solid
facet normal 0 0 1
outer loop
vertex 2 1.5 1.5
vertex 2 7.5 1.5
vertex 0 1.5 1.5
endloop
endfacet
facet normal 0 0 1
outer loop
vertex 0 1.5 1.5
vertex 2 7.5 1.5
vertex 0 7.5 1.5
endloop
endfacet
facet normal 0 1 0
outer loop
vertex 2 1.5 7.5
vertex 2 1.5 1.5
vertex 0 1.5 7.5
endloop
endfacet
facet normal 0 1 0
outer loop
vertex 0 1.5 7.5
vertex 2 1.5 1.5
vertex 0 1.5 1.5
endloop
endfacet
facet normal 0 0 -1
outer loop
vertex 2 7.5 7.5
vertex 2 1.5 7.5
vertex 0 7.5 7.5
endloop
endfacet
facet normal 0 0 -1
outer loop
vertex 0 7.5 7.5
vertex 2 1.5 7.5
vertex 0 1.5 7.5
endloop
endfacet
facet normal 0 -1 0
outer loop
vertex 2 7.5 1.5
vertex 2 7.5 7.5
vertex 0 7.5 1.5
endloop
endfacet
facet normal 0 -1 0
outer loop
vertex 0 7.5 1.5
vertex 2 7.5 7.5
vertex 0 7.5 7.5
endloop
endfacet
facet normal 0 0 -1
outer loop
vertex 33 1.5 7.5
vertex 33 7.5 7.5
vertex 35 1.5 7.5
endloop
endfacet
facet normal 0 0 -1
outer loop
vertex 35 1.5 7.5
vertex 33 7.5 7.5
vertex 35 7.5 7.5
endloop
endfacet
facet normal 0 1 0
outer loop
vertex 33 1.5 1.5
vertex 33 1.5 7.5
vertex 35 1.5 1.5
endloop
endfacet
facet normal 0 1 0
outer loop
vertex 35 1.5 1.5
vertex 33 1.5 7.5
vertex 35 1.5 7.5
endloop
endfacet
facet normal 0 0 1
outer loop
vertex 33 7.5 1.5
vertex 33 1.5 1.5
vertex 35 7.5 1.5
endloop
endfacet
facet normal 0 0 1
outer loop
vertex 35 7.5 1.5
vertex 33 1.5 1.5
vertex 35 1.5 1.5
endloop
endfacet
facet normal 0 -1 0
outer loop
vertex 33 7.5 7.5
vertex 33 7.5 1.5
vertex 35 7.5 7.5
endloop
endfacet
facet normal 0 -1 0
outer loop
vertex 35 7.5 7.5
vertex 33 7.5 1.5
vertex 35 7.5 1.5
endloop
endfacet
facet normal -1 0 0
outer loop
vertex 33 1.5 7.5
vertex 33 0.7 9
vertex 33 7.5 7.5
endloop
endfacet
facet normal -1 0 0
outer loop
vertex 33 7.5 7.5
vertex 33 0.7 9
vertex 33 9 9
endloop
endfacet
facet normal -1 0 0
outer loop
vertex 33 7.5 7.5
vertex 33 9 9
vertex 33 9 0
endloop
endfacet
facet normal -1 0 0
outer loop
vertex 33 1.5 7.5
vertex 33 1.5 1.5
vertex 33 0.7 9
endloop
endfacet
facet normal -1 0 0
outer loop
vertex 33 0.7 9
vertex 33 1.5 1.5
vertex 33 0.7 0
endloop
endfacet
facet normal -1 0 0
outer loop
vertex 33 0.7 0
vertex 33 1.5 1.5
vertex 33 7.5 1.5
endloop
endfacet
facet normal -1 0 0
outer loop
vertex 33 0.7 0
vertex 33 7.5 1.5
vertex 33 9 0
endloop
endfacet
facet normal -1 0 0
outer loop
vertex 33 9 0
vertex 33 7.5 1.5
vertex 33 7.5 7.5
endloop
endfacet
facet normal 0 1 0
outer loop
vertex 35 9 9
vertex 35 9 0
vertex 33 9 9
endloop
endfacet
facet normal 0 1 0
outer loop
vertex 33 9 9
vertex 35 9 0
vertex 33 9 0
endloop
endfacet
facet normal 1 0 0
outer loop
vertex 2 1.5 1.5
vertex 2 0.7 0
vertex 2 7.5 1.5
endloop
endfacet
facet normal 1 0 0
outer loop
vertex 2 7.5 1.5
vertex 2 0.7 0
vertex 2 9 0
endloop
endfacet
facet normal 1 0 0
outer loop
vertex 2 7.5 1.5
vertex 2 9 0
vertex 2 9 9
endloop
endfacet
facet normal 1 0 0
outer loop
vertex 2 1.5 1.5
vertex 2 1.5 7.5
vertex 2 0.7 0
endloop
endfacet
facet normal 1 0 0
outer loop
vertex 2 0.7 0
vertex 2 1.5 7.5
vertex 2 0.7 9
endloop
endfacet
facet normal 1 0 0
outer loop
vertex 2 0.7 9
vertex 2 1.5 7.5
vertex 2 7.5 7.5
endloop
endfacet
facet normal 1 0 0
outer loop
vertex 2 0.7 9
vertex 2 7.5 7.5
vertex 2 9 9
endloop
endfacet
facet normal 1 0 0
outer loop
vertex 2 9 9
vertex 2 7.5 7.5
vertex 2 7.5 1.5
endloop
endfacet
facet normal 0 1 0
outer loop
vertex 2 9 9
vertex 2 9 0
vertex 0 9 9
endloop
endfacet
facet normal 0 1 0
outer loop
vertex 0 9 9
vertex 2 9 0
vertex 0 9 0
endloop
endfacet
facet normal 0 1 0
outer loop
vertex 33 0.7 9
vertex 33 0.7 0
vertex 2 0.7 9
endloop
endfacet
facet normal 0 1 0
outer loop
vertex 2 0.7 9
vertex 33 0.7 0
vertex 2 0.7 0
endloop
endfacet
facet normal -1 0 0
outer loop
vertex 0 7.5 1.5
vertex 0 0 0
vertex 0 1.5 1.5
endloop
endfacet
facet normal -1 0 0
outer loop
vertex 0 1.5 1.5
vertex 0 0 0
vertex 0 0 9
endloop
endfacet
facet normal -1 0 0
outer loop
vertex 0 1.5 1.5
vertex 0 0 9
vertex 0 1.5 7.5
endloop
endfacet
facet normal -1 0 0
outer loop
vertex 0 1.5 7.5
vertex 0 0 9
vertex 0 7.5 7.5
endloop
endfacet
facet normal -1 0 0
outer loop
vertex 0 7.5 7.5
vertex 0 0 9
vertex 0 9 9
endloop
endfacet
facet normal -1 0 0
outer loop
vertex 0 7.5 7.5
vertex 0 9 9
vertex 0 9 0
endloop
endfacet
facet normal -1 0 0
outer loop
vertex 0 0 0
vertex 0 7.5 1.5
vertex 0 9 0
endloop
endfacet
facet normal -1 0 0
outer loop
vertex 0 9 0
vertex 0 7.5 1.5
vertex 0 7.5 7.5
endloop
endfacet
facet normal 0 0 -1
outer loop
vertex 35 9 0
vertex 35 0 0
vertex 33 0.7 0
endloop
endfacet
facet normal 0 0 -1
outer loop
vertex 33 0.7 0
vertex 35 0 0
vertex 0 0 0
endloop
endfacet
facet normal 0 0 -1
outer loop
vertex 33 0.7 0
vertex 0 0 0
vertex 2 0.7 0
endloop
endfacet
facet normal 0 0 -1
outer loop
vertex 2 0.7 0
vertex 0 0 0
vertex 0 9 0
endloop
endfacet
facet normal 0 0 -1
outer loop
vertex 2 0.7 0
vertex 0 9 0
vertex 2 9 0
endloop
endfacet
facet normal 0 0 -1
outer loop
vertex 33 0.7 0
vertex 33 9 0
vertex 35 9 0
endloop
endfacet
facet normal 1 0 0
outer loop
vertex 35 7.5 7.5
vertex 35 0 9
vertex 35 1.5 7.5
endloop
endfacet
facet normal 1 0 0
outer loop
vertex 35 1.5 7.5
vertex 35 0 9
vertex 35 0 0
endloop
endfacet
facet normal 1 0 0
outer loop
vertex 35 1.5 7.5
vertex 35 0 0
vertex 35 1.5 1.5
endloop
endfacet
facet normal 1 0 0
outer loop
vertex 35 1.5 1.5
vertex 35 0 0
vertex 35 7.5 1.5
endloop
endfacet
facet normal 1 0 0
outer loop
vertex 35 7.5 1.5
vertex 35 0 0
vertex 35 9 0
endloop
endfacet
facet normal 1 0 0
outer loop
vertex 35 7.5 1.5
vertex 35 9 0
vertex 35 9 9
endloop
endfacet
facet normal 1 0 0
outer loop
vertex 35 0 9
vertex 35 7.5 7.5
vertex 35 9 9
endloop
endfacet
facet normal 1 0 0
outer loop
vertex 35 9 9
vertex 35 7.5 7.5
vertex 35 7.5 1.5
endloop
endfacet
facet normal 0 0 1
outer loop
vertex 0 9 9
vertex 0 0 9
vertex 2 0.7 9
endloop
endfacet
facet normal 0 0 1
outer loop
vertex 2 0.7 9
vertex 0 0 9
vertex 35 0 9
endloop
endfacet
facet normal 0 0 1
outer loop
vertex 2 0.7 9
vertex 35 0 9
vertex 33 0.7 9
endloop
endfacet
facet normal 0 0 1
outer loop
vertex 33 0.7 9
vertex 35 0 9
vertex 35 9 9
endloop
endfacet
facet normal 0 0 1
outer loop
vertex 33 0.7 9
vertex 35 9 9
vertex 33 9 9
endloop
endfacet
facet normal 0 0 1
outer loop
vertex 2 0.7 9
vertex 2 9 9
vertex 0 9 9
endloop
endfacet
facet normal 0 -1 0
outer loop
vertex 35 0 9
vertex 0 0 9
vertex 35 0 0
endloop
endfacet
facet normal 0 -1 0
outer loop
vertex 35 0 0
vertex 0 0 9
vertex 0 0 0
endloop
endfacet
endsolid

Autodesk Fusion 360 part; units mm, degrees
sketch "Sketch1" plane through (0, 0, 0) normal (0, 1, 0) x (1, 0, 0)
  line L0 (0, 0) -> (35, 0)
  line L1 (35, 0) -> (35, -9)
  line L2 (35, -9) -> (0, -9)
  line L3 (0, -9) -> (0, 0)
  dimension "d1" = 35
  dimension "d2" = 9
extrude "Extrude1" add sketch "Sketch1" along normal blind 0.5
extrude "Extrude2" add 1 faces at (11.6667, 0.5, 3) along direction (0, 1, 0) blind 0.2
sketch "Sketch2" plane through (0, 0.7, 0) normal (0, 1, 0) x (-1, 0, 0)
  line L0 (0, 9) -> (-35, 9)
  line L1 (-35, 9) -> (-35, 0)
  line L2 (-35, 0) -> (0, 0)
  line L3 (0, 0) -> (0, 9)
  line L4 (0, 0) -> (-2, 0)
  line L5 (-2, 0) -> (-2, 9)
  line L6 (-2, 9) -> (0, 9)
  line L7 (0, 9) -> (0, 0)
  dimension "d7" = 2
extrude "Extrude3" add sketch "Sketch2" along normal blind 8.3 contours L0 L2 L3 L4 L5 L6 L7
sketch "Sketch3" plane through (2, 0, 0) normal (1, 0, 0) x (0, 0, -1)
  line L0 (-9, 0.7) -> (0, 0.7)
  line L1 (0, 0.7) -> (0, 9)
  line L2 (0, 9) -> (-9, 9)
  line L3 (-9, 9) -> (-9, 0.7)
  line L4 (-9, 9) -> (-4.5, 9)
  line L5 (-4.5, 9) -> (-4.5, 4.85)
  line L6 (-4.5, 4.85) -> (-9, 4.85)
  line L7 (-9, 4.85) -> (-9, 9)
  line L8 (-4.5, 9) -> (0, 9)
  line L9 (0, 9) -> (0, 4.85)
  line L10 (0, 4.85) -> (-4.5, 4.85)
  line L11 (-4.5, 4.85) -> (-4.5, 9)
  line L12 (-9, 4.85) -> (-4.5, 4.85)
  line L13 (-4.5, 4.85) -> (-4.5, 0.7)
  line L14 (-4.5, 0.7) -> (-9, 0.7)
  line L15 (-9, 0.7) -> (-9, 4.85)
  line L16 (-4.5, 4.85) -> (0, 4.85)
  line L17 (0, 4.85) -> (0, 0.7)
  line L18 (0, 0.7) -> (-4.5, 0.7)
  line L19 (-4.5, 0.7) -> (-4.5, 4.85)
  circle A0 centre (-6.75, 6.925) radius 0.75
  circle A1 centre (-2.25, 6.925) radius 0.75
  circle A2 centre (-6.75, 2.775) radius 0.75
  circle A3 centre (-2.25, 2.775) radius 0.75
  dimension "d10" = 4.5
  dimension "d11" = 4.15
  dimension "d12" = 1.5
  dimension "d13" = 1.5
  dimension "d14" = 1.5
  dimension "d15" = 1.5
extrude "Extrude4" cut sketch "Sketch3" against normal up to surface (2 mm away) contours A0 | A1 | A2 | A3
sketch "Sketch4" plane through (0, 0.7, 0) normal (0, 1, 0) x (-1, 0, 0)
  line L0 (-2, 0) -> (-2, 9)
  line L1 (-2, 9) -> (-35, 9)
  line L2 (-35, 9) -> (-35, 0)
  line L3 (-35, 0) -> (-2, 0)
  line L4 (-35, 9) -> (-33, 9)
  line L5 (-33, 9) -> (-33, 0)
  line L6 (-33, 0) -> (-35, 0)
  line L7 (-35, 0) -> (-35, 9)
  dimension "d18" = 2
extrude "Extrude5" add sketch "Sketch4" along normal up to surface (8.3 mm away) contours L1 L2 L3 L4 L5 L6 L7
sketch "Sketch5" plane through (33, 0, 0) normal (-1, 0, 0) x (0, 0, 1)
  line L0 (9, 9) -> (0, 9)
  line L1 (0, 9) -> (0, 0.7)
  line L2 (0, 0.7) -> (9, 0.7)
  line L3 (9, 0.7) -> (9, 9)
  line L4 (6, 3.35) -> (3, 3.35)
  line L5 (3, 3.35) -> (3, 6.35)
  line L6 (3, 6.35) -> (6, 6.35)
  line L7 (6, 6.35) -> (6, 3.35)
  line L8 (6, 3.35) -> (3, 6.35) construction
  line L9 (3, 3.35) -> (6, 6.35) construction
  point P0 (4.5, 4.85)
  point P1 (4.5, 4.85)
  dimension "d21" = 3
  dimension "d22" = 3
extrude "Extrude6" cut sketch "Sketch5" against normal up to surface (2 mm away) contours L4 L5 L6 L7
delete_face "DeleteFace1" 1 faces at (0.6667, 6.8503, 1.5037)
delete_face "DeleteFace2" 1 faces at (0.6667, 6.8503, 6.0037)
delete_face "DeleteFace3" 1 faces at (0.6667, 2.7003, 6.0037)
delete_face "DeleteFace4" 1 faces at (0.6667, 2.7003, 1.5037)
delete_face "DeleteFace5" 1 faces at (33.6667, 4.35, 3)
sketch "Sketch6" plane through (35, 0, 0) normal (1, 0, 0) x (0, 0, -1)
  line L0 (0, 0) -> (0, 9)
  line L1 (0, 9) -> (-9, 9)
  line L2 (-9, 9) -> (-9, 0)
  line L3 (-9, 0) -> (0, 0)
  line L4 (-9, 9) -> (-7.5, 9)
  line L5 (-7.5, 9) -> (-7.5, 7.5)
  line L6 (-7.5, 7.5) -> (-9, 7.5)
  line L7 (-9, 7.5) -> (-9, 9)
  line L8 (0, 9) -> (-1.5, 9)
  line L9 (-1.5, 9) -> (-1.5, 7.5)
  line L10 (-1.5, 7.5) -> (0, 7.5)
  line L11 (0, 7.5) -> (0, 9)
  line L12 (-9, 0) -> (-7.5, 0)
  line L13 (-7.5, 0) -> (-7.5, 1.5)
  line L14 (-7.5, 1.5) -> (-9, 1.5)
  line L15 (-9, 1.5) -> (-9, 0)
  line L16 (0, 0) -> (-1.5, 0)
  line L17 (-1.5, 0) -> (-1.5, 1.5)
  line L18 (-1.5, 1.5) -> (0, 1.5)
  line L19 (0, 1.5) -> (0, 0)
  line L20 (-7.5, 7.5) -> (-1.5, 7.5)
  line L21 (-1.5, 7.5) -> (-1.5, 1.5)
  line L22 (-1.5, 1.5) -> (-7.5, 1.5)
  line L23 (-7.5, 1.5) -> (-7.5, 7.5)
  dimension "d25" = 1.5
  dimension "d26" = 1.5
  dimension "d27" = 1.5
  dimension "d28" = 1.5
  dimension "d29" = 1.5
  dimension "d30" = 1.5
  dimension "d31" = 1.5
  dimension "d32" = 1.5
extrude "Extrude7" cut sketch "Sketch6" against normal up to surface (2 mm away) contours L20 L21 L22 L23
sketch "Sketch7" plane through (0, 0, 0) normal (-1, 0, 0) x (0, 0, 1)
  line L0 (0, 0) -> (9, 0)
  line L1 (9, 0) -> (9, 9)
  line L2 (9, 9) -> (0, 9)
  line L3 (0, 9) -> (0, 0)
  line L4 (0, 9) -> (1.5, 9)
  line L5 (1.5, 9) -> (1.5, 7.5)
  line L6 (1.5, 7.5) -> (0, 7.5)
  line L7 (0, 7.5) -> (0, 9)
  line L8 (9, 9) -> (7.5, 9)
  line L9 (7.5, 9) -> (7.5, 7.5)
  line L10 (7.5, 7.5) -> (9, 7.5)
  line L11 (9, 7.5) -> (9, 9)
  line L12 (0, 0) -> (1.5, 0)
  line L13 (1.5, 0) -> (1.5, 1.5)
  line L14 (1.5, 1.5) -> (0, 1.5)
  line L15 (0, 1.5) -> (0, 0)
  line L16 (9, 0) -> (7.5, 0)
  line L17 (7.5, 0) -> (7.5, 1.5)
  line L18 (7.5, 1.5) -> (9, 1.5)
  line L19 (9, 1.5) -> (9, 0)
  line L20 (1.5, 7.5) -> (7.5, 7.5)
  line L21 (7.5, 7.5) -> (7.5, 1.5)
  line L22 (7.5, 1.5) -> (1.5, 1.5)
  line L23 (1.5, 1.5) -> (1.5, 7.5)
  dimension "d35" = 1.5
  dimension "d36" = 1.5
  dimension "d37" = 1.5
  dimension "d38" = 1.5
  dimension "d39" = 1.5
  dimension "d40" = 1.5
  dimension "d41" = 1.5
  dimension "d42" = 1.5
extrude "Extrude8" cut sketch "Sketch7" against normal up to surface (2 mm away) contours L20 L21 L22 L23
